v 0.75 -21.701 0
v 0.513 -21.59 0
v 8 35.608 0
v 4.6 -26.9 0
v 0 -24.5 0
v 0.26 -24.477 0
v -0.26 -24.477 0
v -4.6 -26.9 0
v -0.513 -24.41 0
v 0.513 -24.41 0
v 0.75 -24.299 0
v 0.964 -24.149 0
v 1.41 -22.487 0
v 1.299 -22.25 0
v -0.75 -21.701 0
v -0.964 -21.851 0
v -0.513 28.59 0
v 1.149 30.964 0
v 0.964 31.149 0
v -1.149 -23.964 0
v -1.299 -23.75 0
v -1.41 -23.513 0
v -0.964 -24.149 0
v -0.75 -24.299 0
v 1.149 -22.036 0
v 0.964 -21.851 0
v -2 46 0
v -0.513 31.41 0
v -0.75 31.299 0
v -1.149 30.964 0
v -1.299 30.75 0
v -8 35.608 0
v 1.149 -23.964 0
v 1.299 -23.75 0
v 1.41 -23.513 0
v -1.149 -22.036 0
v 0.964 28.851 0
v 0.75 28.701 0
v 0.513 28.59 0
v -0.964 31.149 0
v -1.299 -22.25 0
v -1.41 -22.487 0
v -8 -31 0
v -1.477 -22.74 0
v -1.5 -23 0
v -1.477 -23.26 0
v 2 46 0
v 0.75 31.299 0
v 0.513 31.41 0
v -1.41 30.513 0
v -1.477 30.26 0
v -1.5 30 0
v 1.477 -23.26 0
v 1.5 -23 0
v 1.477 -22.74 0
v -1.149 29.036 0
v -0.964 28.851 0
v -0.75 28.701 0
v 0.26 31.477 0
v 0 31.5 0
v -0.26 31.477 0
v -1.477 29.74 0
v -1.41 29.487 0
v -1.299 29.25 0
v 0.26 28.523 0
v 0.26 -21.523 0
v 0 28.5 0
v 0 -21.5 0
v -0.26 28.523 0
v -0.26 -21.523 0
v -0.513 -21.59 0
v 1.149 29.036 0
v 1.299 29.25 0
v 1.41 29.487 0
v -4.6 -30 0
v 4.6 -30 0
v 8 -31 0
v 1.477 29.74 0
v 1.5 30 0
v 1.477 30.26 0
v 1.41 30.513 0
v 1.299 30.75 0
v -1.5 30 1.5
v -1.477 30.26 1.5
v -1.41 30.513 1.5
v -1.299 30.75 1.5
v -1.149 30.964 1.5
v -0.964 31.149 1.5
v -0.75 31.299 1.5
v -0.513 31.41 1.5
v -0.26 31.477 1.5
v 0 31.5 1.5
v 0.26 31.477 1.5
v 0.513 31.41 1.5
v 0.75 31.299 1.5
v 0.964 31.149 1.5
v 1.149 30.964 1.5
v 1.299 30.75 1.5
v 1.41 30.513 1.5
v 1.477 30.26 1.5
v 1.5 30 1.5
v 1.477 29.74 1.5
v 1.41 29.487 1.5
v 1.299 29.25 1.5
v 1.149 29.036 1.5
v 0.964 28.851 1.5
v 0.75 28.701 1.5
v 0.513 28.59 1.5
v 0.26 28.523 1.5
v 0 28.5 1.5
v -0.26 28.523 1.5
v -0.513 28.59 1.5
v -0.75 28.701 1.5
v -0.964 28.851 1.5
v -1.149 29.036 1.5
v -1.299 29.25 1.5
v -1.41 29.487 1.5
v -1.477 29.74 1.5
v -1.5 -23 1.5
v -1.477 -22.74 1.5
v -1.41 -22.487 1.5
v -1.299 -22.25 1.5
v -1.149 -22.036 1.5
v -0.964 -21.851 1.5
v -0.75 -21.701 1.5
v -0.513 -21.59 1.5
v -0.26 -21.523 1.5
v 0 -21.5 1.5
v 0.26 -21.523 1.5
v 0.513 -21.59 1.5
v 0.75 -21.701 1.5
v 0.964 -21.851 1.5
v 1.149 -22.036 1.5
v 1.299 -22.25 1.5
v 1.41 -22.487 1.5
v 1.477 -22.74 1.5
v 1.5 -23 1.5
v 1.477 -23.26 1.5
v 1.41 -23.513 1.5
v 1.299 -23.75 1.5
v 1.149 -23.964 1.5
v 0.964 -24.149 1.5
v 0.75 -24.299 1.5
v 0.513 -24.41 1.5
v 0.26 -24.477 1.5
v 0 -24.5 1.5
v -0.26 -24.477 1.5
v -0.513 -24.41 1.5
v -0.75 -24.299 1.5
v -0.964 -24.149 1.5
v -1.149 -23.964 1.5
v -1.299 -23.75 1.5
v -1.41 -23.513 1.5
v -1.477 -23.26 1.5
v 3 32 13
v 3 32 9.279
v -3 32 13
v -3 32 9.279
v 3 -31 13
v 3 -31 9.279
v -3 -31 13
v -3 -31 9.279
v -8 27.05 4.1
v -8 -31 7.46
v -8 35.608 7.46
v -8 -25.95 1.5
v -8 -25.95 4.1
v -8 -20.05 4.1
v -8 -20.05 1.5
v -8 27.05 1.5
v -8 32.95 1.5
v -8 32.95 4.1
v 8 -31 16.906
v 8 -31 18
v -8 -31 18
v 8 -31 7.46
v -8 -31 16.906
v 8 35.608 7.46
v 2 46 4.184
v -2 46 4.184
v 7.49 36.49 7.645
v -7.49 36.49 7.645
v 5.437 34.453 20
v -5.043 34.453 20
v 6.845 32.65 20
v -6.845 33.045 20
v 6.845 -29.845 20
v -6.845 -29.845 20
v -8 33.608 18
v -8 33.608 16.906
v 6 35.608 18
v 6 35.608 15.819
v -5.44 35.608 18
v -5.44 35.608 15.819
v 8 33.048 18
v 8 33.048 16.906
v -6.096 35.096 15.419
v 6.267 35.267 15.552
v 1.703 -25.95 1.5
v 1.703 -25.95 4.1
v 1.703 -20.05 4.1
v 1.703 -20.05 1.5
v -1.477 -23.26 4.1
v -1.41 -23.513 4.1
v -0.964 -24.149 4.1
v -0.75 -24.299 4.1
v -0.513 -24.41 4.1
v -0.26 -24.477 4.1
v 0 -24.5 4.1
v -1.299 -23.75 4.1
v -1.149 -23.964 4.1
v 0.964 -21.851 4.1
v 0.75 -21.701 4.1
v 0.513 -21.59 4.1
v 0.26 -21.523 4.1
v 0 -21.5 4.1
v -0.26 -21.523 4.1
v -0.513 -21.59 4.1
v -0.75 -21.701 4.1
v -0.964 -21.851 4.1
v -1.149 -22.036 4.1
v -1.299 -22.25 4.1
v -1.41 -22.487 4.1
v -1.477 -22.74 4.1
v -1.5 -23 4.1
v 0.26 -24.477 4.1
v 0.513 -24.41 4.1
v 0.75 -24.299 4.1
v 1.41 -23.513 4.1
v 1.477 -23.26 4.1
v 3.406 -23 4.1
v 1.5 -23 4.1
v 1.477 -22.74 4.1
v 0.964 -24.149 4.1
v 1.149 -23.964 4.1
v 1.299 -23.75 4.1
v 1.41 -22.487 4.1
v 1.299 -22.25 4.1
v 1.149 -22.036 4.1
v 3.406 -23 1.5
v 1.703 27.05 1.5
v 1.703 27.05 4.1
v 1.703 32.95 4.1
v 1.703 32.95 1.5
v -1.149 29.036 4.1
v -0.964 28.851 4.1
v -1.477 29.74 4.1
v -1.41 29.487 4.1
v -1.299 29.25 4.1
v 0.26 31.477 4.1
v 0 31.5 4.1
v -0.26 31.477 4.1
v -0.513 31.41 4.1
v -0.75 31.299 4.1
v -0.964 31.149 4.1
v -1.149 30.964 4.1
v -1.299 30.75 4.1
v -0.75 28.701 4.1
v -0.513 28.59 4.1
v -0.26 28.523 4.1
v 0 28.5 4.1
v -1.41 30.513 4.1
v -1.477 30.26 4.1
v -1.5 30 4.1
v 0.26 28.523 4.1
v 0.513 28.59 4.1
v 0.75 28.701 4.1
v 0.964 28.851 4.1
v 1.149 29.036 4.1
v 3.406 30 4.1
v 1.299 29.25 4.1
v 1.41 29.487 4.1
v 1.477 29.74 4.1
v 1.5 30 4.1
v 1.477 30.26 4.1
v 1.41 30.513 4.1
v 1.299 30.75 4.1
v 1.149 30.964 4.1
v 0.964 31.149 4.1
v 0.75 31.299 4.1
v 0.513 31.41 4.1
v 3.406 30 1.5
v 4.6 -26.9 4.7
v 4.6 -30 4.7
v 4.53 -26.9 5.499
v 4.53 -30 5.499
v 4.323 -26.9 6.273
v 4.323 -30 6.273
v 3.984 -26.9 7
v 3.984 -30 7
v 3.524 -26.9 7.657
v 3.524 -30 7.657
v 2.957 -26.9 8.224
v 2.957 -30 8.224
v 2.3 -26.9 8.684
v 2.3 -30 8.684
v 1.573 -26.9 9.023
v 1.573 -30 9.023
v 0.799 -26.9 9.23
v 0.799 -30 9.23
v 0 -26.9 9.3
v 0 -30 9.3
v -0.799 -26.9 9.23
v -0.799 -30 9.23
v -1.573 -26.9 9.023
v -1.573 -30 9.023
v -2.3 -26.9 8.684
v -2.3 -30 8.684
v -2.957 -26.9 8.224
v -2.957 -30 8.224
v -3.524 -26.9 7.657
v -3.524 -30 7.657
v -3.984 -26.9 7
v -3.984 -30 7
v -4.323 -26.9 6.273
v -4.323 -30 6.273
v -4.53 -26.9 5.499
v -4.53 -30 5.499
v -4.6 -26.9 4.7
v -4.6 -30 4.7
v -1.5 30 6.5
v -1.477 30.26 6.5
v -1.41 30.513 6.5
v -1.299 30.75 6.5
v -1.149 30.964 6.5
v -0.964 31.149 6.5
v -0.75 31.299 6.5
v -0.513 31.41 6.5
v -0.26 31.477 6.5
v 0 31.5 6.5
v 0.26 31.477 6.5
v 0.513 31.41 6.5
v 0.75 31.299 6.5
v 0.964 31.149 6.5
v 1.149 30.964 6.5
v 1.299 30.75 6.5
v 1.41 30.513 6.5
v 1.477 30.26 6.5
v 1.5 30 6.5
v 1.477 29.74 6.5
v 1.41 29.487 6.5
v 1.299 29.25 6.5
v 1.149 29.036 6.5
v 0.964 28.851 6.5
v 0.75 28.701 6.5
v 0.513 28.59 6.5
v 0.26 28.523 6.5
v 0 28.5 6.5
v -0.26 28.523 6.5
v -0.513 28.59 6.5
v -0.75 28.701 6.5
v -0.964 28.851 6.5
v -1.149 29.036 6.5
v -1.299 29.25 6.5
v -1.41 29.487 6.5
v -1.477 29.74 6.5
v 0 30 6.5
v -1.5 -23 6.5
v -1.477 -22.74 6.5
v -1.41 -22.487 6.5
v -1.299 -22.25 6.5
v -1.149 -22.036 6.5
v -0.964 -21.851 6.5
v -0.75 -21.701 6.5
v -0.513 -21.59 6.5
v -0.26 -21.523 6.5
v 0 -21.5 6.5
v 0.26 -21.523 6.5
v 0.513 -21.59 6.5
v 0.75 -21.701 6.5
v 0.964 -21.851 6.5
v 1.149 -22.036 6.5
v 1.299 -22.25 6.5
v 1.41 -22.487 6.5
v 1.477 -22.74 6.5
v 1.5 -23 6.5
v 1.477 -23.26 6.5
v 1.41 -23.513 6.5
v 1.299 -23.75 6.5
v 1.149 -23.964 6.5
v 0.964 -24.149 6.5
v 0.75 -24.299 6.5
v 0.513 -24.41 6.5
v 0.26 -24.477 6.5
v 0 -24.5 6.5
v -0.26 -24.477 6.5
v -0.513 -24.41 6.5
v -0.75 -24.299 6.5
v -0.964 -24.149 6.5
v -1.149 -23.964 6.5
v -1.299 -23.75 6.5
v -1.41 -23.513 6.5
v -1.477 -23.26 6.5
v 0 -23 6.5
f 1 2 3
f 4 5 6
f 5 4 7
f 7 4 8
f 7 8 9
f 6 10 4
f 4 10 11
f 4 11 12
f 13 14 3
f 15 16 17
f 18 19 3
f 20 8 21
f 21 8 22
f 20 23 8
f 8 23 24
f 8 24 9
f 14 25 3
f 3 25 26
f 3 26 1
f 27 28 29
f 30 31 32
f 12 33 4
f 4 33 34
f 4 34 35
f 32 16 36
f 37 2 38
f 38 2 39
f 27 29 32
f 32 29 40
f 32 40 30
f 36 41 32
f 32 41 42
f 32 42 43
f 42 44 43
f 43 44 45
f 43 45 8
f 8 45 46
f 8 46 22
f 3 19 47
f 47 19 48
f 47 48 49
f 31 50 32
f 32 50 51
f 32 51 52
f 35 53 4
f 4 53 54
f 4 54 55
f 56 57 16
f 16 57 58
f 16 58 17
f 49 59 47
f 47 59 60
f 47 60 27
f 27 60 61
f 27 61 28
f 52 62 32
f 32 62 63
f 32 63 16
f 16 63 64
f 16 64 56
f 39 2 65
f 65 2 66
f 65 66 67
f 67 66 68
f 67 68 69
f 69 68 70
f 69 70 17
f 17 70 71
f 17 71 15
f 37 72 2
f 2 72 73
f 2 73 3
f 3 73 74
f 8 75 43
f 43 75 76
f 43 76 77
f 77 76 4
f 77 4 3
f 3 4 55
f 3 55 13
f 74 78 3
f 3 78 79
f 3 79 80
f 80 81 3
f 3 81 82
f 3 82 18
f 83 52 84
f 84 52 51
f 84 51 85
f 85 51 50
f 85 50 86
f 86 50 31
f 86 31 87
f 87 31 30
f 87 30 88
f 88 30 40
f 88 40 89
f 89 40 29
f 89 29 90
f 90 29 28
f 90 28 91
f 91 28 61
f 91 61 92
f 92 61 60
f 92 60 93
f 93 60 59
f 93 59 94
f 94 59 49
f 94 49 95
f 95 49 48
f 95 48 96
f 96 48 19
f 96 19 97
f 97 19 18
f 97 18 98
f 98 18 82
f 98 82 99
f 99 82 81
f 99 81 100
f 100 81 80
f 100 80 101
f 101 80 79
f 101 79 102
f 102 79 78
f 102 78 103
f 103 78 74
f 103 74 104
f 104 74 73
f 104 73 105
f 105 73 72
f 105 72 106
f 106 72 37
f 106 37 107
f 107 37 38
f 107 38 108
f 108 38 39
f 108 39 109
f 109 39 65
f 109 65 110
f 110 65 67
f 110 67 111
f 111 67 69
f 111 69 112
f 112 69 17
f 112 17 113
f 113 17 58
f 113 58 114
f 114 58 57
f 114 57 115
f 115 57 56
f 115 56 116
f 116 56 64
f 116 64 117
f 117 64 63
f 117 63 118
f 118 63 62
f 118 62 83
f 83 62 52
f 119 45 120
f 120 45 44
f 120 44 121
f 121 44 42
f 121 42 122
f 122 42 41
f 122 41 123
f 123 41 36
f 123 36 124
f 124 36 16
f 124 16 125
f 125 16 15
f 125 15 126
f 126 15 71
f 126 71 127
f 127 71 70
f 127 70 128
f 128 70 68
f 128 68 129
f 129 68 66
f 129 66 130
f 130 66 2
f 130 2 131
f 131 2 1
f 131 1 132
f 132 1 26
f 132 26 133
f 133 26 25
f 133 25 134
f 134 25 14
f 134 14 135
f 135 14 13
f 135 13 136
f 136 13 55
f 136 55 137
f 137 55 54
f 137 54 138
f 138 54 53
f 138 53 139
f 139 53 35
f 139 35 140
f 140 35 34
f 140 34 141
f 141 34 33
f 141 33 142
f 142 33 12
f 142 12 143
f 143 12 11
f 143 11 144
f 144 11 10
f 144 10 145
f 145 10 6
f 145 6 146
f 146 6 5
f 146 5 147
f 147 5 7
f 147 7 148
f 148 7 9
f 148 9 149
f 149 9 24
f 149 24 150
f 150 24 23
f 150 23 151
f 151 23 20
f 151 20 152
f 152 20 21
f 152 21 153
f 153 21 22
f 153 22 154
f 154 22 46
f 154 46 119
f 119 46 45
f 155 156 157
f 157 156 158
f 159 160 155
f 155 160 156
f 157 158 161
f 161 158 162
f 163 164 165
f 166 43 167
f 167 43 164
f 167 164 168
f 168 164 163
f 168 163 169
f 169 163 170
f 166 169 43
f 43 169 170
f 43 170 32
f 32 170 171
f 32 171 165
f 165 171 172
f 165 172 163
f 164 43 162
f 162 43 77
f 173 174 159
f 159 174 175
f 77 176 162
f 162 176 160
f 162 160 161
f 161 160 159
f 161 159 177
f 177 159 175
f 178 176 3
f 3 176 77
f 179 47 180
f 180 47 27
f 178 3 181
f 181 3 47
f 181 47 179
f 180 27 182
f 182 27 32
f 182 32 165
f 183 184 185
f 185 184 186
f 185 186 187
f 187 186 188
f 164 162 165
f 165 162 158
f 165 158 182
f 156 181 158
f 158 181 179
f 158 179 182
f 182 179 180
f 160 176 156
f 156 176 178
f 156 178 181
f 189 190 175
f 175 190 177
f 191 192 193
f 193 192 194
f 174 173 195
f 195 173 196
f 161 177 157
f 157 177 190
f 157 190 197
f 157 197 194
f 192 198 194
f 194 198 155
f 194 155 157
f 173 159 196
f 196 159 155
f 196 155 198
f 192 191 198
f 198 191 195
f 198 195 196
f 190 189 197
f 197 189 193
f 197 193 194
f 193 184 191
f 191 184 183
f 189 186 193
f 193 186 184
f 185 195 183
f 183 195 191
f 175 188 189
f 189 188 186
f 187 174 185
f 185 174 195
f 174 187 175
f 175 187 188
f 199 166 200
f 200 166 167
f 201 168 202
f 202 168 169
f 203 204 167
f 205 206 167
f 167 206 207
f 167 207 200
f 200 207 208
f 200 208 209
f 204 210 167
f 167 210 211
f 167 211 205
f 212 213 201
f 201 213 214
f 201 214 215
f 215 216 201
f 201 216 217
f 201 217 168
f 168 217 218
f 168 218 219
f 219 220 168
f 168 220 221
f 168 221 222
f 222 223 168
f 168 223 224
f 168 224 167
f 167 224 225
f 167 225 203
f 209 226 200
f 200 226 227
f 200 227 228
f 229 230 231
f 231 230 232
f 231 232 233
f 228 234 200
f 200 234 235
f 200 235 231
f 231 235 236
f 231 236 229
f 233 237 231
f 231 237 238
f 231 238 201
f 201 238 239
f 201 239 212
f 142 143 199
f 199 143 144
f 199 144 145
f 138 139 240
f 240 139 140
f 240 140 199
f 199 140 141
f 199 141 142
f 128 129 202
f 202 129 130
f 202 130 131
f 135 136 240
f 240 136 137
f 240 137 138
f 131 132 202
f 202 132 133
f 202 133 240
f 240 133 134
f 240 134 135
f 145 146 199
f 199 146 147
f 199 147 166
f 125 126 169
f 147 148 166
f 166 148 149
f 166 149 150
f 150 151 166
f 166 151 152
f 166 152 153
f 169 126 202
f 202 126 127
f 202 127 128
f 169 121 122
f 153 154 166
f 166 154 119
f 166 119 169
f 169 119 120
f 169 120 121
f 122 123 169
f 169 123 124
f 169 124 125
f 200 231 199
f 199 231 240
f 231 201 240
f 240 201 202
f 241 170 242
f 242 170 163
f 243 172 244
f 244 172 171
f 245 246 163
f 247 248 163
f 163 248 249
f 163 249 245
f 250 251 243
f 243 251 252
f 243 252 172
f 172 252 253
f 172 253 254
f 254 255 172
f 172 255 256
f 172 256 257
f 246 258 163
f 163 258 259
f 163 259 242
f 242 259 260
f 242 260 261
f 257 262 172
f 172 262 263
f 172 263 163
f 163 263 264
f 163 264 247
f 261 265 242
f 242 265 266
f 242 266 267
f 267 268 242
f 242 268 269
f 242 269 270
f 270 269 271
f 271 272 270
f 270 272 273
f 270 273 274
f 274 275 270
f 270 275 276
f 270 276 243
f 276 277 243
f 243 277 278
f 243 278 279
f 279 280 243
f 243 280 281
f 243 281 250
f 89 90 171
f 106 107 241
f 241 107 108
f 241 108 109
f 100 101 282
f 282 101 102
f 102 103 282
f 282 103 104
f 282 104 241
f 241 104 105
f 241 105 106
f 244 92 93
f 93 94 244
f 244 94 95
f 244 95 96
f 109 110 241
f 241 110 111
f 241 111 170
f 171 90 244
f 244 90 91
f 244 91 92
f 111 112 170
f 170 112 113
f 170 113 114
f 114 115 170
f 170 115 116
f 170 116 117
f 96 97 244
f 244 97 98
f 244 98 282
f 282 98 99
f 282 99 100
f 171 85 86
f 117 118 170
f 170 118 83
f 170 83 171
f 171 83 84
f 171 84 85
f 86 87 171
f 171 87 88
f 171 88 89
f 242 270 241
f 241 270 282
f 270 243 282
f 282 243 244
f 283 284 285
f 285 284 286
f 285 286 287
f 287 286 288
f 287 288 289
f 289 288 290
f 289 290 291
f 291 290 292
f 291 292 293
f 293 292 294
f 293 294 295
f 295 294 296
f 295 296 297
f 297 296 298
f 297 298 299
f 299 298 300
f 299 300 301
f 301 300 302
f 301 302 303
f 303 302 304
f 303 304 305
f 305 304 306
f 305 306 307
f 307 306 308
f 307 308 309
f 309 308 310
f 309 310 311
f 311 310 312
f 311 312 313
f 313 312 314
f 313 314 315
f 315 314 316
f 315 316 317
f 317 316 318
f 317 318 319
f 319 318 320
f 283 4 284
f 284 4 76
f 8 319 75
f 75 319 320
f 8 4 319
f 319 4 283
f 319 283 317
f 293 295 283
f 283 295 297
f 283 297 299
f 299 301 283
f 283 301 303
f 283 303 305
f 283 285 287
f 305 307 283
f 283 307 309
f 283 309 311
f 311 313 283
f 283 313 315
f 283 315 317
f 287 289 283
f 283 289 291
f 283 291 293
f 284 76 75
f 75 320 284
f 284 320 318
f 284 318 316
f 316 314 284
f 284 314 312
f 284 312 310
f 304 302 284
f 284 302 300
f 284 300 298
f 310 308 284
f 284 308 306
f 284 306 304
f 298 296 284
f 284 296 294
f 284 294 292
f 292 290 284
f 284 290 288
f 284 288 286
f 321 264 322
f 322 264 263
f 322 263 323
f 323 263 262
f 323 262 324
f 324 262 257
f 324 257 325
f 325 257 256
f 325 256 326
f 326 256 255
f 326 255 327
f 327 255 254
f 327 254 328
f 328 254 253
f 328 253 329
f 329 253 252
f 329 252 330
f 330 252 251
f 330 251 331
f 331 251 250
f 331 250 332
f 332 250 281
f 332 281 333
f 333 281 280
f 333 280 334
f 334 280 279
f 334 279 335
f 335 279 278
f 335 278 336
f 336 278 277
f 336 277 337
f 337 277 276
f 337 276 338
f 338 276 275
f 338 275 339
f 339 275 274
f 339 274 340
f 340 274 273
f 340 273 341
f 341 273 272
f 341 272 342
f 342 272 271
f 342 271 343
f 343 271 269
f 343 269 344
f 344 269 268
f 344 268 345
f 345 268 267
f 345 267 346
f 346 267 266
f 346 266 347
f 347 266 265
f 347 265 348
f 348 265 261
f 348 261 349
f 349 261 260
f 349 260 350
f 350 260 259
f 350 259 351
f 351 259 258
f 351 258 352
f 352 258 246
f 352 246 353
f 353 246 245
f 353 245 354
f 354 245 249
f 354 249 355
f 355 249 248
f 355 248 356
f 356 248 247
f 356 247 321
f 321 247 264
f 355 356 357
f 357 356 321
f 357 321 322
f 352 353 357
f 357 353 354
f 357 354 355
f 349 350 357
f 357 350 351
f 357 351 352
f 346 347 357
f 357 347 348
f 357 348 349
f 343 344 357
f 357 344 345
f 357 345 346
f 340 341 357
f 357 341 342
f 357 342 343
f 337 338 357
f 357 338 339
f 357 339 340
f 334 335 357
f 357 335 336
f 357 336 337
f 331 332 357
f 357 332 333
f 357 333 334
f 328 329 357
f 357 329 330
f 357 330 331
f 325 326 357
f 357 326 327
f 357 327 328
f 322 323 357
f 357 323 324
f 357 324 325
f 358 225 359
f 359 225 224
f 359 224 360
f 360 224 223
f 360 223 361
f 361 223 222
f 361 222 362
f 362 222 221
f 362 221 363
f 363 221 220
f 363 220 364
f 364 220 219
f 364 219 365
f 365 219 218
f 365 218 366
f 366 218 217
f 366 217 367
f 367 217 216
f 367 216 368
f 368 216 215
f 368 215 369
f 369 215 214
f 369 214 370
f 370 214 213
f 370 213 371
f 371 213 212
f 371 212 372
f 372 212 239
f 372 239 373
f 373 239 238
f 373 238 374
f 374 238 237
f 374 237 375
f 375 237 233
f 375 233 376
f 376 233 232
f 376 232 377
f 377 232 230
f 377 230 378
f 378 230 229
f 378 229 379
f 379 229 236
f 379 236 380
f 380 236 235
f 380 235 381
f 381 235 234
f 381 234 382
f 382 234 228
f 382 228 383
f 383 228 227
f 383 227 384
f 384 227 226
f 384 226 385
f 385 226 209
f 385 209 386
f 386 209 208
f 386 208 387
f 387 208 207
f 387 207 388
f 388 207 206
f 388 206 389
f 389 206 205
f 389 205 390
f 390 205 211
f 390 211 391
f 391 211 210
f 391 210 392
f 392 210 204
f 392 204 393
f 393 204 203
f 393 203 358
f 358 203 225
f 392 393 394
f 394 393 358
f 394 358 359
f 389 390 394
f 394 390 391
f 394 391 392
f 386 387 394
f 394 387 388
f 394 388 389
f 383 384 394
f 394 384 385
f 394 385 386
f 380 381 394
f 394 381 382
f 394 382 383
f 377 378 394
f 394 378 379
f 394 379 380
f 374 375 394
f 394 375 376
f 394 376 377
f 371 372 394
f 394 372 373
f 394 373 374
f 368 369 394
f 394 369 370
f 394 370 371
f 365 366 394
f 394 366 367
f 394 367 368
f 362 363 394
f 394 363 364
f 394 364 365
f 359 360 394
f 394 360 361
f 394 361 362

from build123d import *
from OCP.BRepFilletAPI import BRepFilletAPI_MakeChamfer

# Parameters (mm, degrees)
SKETCH1_W           = 16
SKETCH1_H           = 77
SKETCH1_R           = 1.5
BOSS_EXTRUDE1_DEPTH = 2
CHAMFER1_SIZE       = 6
CHAMFER1_SIZE2      = 10.392304845
SKETCH2_W           = 6
SKETCH2_H           = 63
BOSS_EXTRUDE2_DEPTH = 18
CHAMFER2_SIZE       = 20
CHAMFER2_SIZE_2     = 7.279404685
SKETCH3_W           = 16
SKETCH3_H           = 66.607695155
BOSS_EXTRUDE3_DEPTH = 3
CHAMFER3_SIZE       = 5.119766529
CHAMFER3_SIZE_2     = 4
CHAMFER4_SIZE       = 2
CHAMFER4_SIZE2      = 2.559883264
CHAMFER6_SIZE       = 2
CHAMFER6_SIZE2      = 1.154700538
CUT_EXTRUDE1_DEPTH  = 2.6
CUT_EXTRUDE3_DEPTH  = 3.1
SKETCH9_R           = 1.5
CUT_EXTRUDE_3_DEPTH = 6.5


with BuildPart() as part:
    # Sketch1 → Boss-Extrude1 (new body)
    with BuildSketch(Plane.XY):
        with Locations((0, 7.5)):
            Rectangle(SKETCH1_W, SKETCH1_H)
        with Locations((0, 30)):
            Circle(SKETCH1_R, mode=Mode.SUBTRACT)
        with Locations((0, -23)):
            Circle(SKETCH1_R, mode=Mode.SUBTRACT)
    extrude(amount=BOSS_EXTRUDE1_DEPTH)

    # Chamfer1
    chamfer1_edges = [part.edges().sort_by_distance(p)[0] for p in [
        (-8, 46, 1),
        (8, 46, 1),
    ]]
    chamfer1_side = [part.faces().sort_by_distance(p)[0] for p in [
        (0, 46, 1),
    ]]
    chamfer(chamfer1_edges, length=CHAMFER1_SIZE, length2=CHAMFER1_SIZE2, reference=chamfer1_side[0])

    # Sketch2 → Boss-Extrude2 (add)
    with BuildSketch(Plane.XY.offset(2)):
        with Locations((0, 0.5)):
            Rectangle(SKETCH2_W, SKETCH2_H)
    extrude(amount=BOSS_EXTRUDE2_DEPTH)

    # Chamfer2
    # the kernel refuses this chamfer: 20, 7.279404685 mm, written as the material it adds along each edge
    with BuildSketch(Plane(origin=(3, 32, 2), x_dir=(0.9999130865277317, 0, -0.013184058198645935), z_dir=(0, -1, 0))) as chamfer2_piece_1_section:
        Polygon((CHAMFER2_SIZE * 0.999913086528, CHAMFER2_SIZE * 0.0131840581986), (-CHAMFER2_SIZE_2 * 0.0131840581992, CHAMFER2_SIZE_2 * 0.999913086572), (0, 0), align=None)
    chamfer2_piece_1 = extrude(amount=63, mode=Mode.PRIVATE)
    chamfer2_piece_1 = split(chamfer2_piece_1, bisect_by=Plane(origin=(8, 0.5, 5.171623494), z_dir=(-1, 0, 0)), keep=Keep.TOP, mode=Mode.PRIVATE)
    add(chamfer2_piece_1)
    with BuildSketch(Plane(origin=(-3, -31, 2), x_dir=(-0.9999130865277317, 0, -0.013184058198645935), z_dir=(0, 1, 0))) as chamfer2_piece_2_section:
        Polygon((CHAMFER2_SIZE * 0.999913086528, CHAMFER2_SIZE * 0.0131840581986), (-CHAMFER2_SIZE_2 * 0.0131840581992, CHAMFER2_SIZE_2 * 0.999913086572), (0, 0), align=None)
    chamfer2_piece_2 = extrude(amount=63, mode=Mode.PRIVATE)
    chamfer2_piece_2 = split(chamfer2_piece_2, bisect_by=Plane(origin=(-8, 0.5, 5.171623494), z_dir=(1, 0, 0)), keep=Keep.TOP, mode=Mode.PRIVATE)
    add(chamfer2_piece_2)
    with BuildSketch(Plane(origin=(-3, 32, 2), x_dir=(0, 0.9999130865277315, -0.01318405819864593), z_dir=(1, 0, 0))) as chamfer2_piece_3_section:
        Polygon((CHAMFER2_SIZE * 0.999913086528, CHAMFER2_SIZE * 0.0131840581986), (-CHAMFER2_SIZE_2 * 0.0131840581992, CHAMFER2_SIZE_2 * 0.999913086572), (0, 0), align=None)
    chamfer2_piece_3 = extrude(amount=6, mode=Mode.PRIVATE)
    chamfer2_piece_3 = split(chamfer2_piece_3, bisect_by=Plane(origin=(0, 46, 4.508624661), z_dir=(0, -1, 0)), keep=Keep.TOP, mode=Mode.PRIVATE)
    chamfer2_piece_3 = split(chamfer2_piece_3, bisect_by=Plane(origin=(-5.203873062, 40.450729076, 4.508624661), z_dir=(0.8660254037844399, -0.49999999999999795, 0)), keep=Keep.TOP, mode=Mode.PRIVATE)
    chamfer2_piece_3 = split(chamfer2_piece_3, bisect_by=Plane(origin=(5.203873062, 40.450729076, 4.508624661), z_dir=(-0.8660254037844398, -0.499999999999998, 0)), keep=Keep.TOP, mode=Mode.PRIVATE)
    add(chamfer2_piece_3)
    with BuildSketch(Plane(origin=(-3, 32, 2), x_dir=(0, 0.9999130865277315, -0.01318405819864593), z_dir=(1, 0, 0))) as chamfer2_piece_4a_section:
        Polygon((CHAMFER2_SIZE * 0.999913086528, CHAMFER2_SIZE * 0.0131840581986), (-CHAMFER2_SIZE_2 * 0.0131840581992, CHAMFER2_SIZE_2 * 0.999913086572), (0, 0), align=None)
    chamfer2_piece_4a = extrude(amount=57.883894651, mode=Mode.PRIVATE)
    chamfer2_piece_4a = split(chamfer2_piece_4a, bisect_by=Plane(origin=(7.316315987, 36.791870601, 4.879553829), z_dir=(-0.8660254037844398, -0.499999999999998, 0)), keep=Keep.TOP, mode=Mode.PRIVATE)
    chamfer2_piece_4a = split(chamfer2_piece_4a, bisect_by=Plane(origin=(8, 35.552510025, 4.879553829), z_dir=(-1, 0, 0)), keep=Keep.TOP, mode=Mode.PRIVATE)
    chamfer2_piece_4a = split(chamfer2_piece_4a, bisect_by=Plane(origin=(3, 35.552510025, 4.879553829), z_dir=(1, 0, 0)), keep=Keep.TOP, mode=Mode.PRIVATE)
    with BuildSketch(Plane(origin=(3, 83.883894651, 2), x_dir=(0.9999130865277317, 0, -0.013184058198645935), z_dir=(0, -1, 0))) as chamfer2_piece_4b_section:
        Polygon((CHAMFER2_SIZE * 0.999913086528, CHAMFER2_SIZE * 0.0131840581986), (-CHAMFER2_SIZE_2 * 0.0131840581992, CHAMFER2_SIZE_2 * 0.999913086572), (0, 0), align=None)
    chamfer2_piece_4b = extrude(amount=114.883894651, mode=Mode.PRIVATE)
    chamfer2_piece_4b = split(chamfer2_piece_4b, bisect_by=Plane(origin=(6.651088561, 37.944078302, 5.319791994), z_dir=(-0.8660254037844398, -0.499999999999998, 0)), keep=Keep.TOP, mode=Mode.PRIVATE)
    chamfer2_piece_4b = split(chamfer2_piece_4b, bisect_by=Plane(origin=(8, 36.755262641, 5.319791994), z_dir=(-1, 0, 0)), keep=Keep.TOP, mode=Mode.PRIVATE)
    chamfer2_piece_4b = split(chamfer2_piece_4b, bisect_by=Plane(origin=(4.591999436, 32, 5.319791994), z_dir=(0, 1, 0)), keep=Keep.TOP, mode=Mode.PRIVATE)
    chamfer2_piece_4 = chamfer2_piece_4a & chamfer2_piece_4b
    add(chamfer2_piece_4)
    with BuildSketch(Plane(origin=(-3, -31, 2), x_dir=(-0.9999130865277317, 0, -0.013184058198645935), z_dir=(0, 1, 0))) as chamfer2_piece_5a_section:
        Polygon((CHAMFER2_SIZE * 0.999913086528, CHAMFER2_SIZE * 0.0131840581986), (-CHAMFER2_SIZE_2 * 0.0131840581992, CHAMFER2_SIZE_2 * 0.999913086572), (0, 0), align=None)
    chamfer2_piece_5a = extrude(amount=114.883894651, mode=Mode.PRIVATE)
    chamfer2_piece_5a = split(chamfer2_piece_5a, bisect_by=Plane(origin=(-6.651088561, 37.944078302, 5.319791994), z_dir=(0.8660254037844399, -0.49999999999999795, 0)), keep=Keep.TOP, mode=Mode.PRIVATE)
    chamfer2_piece_5a = split(chamfer2_piece_5a, bisect_by=Plane(origin=(-8, 36.755262641, 5.319791994), z_dir=(1, 0, 0)), keep=Keep.TOP, mode=Mode.PRIVATE)
    chamfer2_piece_5a = split(chamfer2_piece_5a, bisect_by=Plane(origin=(-4.591999436, 32, 5.319791994), z_dir=(0, 1, 0)), keep=Keep.TOP, mode=Mode.PRIVATE)
    with BuildSketch(Plane(origin=(-54.883894651, 32, 2), x_dir=(0, 0.9999130865277315, -0.01318405819864593), z_dir=(1, 0, 0))) as chamfer2_piece_5b_section:
        Polygon((CHAMFER2_SIZE * 0.999913086528, CHAMFER2_SIZE * 0.0131840581986), (-CHAMFER2_SIZE_2 * 0.0131840581992, CHAMFER2_SIZE_2 * 0.999913086572), (0, 0), align=None)
    chamfer2_piece_5b = extrude(amount=57.883894651, mode=Mode.PRIVATE)
    chamfer2_piece_5b = split(chamfer2_piece_5b, bisect_by=Plane(origin=(-7.316315987, 36.791870601, 4.879553829), z_dir=(0.8660254037844399, -0.49999999999999795, 0)), keep=Keep.TOP, mode=Mode.PRIVATE)
    chamfer2_piece_5b = split(chamfer2_piece_5b, bisect_by=Plane(origin=(-8, 35.552510025, 4.879553829), z_dir=(1, 0, 0)), keep=Keep.TOP, mode=Mode.PRIVATE)
    chamfer2_piece_5b = split(chamfer2_piece_5b, bisect_by=Plane(origin=(-3, 35.552510025, 4.879553829), z_dir=(-1, 0, 0)), keep=Keep.TOP, mode=Mode.PRIVATE)
    chamfer2_piece_5 = chamfer2_piece_5a & chamfer2_piece_5b
    add(chamfer2_piece_5)

    # Sketch3 → Boss-Extrude3 (add)
    with BuildSketch(Plane.XY.offset(20)):
        with Locations((0, 2.303847577)):
            Rectangle(SKETCH3_W, SKETCH3_H)
    extrude(amount=-BOSS_EXTRUDE3_DEPTH)

    # Chamfer3
    # the kernel refuses this chamfer: 5.119766529, 4 mm, written as the material it adds along each edge
    with BuildSketch(Plane(origin=(-3, 32, 17), x_dir=(-0.9997151392093142, 0, 0.023867141339117107), z_dir=(0, -1, 0))) as chamfer3_piece_1_section:
        Polygon((CHAMFER3_SIZE * 0.999715139165, CHAMFER3_SIZE * 0.0238671413381), (-CHAMFER3_SIZE_2 * 0.0238671413391, CHAMFER3_SIZE_2 * 0.999715139209), (0, 0), align=None)
    chamfer3_piece_1 = extrude(amount=63, mode=Mode.PRIVATE)
    chamfer3_piece_1 = split(chamfer3_piece_1, bisect_by=Plane(origin=(-8, 0.5, 15.68735559), z_dir=(1, 0, 0)), keep=Keep.TOP, mode=Mode.PRIVATE)
    add(chamfer3_piece_1)
    with BuildSketch(Plane(origin=(3, -31, 17), x_dir=(-0.03908161918057666, 0, -0.9992360216896831), z_dir=(0, 1, 0))) as chamfer3_piece_2_section:
        Polygon((CHAMFER3_SIZE_2 * 0.99923602169, -CHAMFER3_SIZE_2 * 0.0390816191806), (-CHAMFER3_SIZE * 0.0390816191788, -CHAMFER3_SIZE * 0.999236021645), (0, 0), align=None)
    chamfer3_piece_2 = extrude(amount=63, mode=Mode.PRIVATE)
    chamfer3_piece_2 = split(chamfer3_piece_2, bisect_by=Plane(origin=(8, 0.5, 15.68735559), z_dir=(-1, 0, 0)), keep=Keep.TOP, mode=Mode.PRIVATE)
    add(chamfer3_piece_2)
    with BuildSketch(Plane(origin=(3, 32, 17), x_dir=(0, -0.03908161918057696, -0.9992360216896828), z_dir=(-1, 0, 0))) as chamfer3_piece_3_section:
        Polygon((CHAMFER3_SIZE_2 * 0.99923602169, -CHAMFER3_SIZE_2 * 0.0390816191806), (-CHAMFER3_SIZE * 0.0390816191788, -CHAMFER3_SIZE * 0.999236021645), (0, 0), align=None)
    chamfer3_piece_3 = extrude(amount=6, mode=Mode.PRIVATE)
    chamfer3_piece_3 = split(chamfer3_piece_3, bisect_by=Plane(origin=(0, 35.607695155, 15.575763401), z_dir=(0, -1, 0)), keep=Keep.TOP, mode=Mode.PRIVATE)
    add(chamfer3_piece_3)
    with BuildSketch(Plane(origin=(3, 32, 17), x_dir=(0, -0.03908161918057696, -0.9992360216896828), z_dir=(-1, 0, 0))) as chamfer3_piece_4a_section:
        Polygon((CHAMFER3_SIZE_2 * 0.99923602169, -CHAMFER3_SIZE_2 * 0.0390816191806), (-CHAMFER3_SIZE * 0.0390816191788, -CHAMFER3_SIZE * 0.999236021645), (0, 0), align=None)
    chamfer3_piece_4a = extrude(amount=19.206621479, mode=Mode.PRIVATE)
    chamfer3_piece_4a = split(chamfer3_piece_4a, bisect_by=Plane(origin=(-3, 33.411290687, 15.575763401), z_dir=(-1, 0, 0)), keep=Keep.TOP, mode=Mode.PRIVATE)
    chamfer3_piece_4a = split(chamfer3_piece_4a, bisect_by=Plane(origin=(-8, 33.411290687, 15.575763401), z_dir=(1, 0, 0)), keep=Keep.TOP, mode=Mode.PRIVATE)
    chamfer3_piece_4a = split(chamfer3_piece_4a, bisect_by=Plane(origin=(-5.5, 35.607695155, 15.575763401), z_dir=(0, -1, 0)), keep=Keep.TOP, mode=Mode.PRIVATE)
    with BuildSketch(Plane(origin=(-3, 45.206621479, 17), x_dir=(-0.9997151392093142, 0, 0.023867141339117107), z_dir=(0, -1, 0))) as chamfer3_piece_4b_section:
        Polygon((CHAMFER3_SIZE * 0.999715139165, CHAMFER3_SIZE * 0.0238671413381), (-CHAMFER3_SIZE_2 * 0.0238671413391, CHAMFER3_SIZE_2 * 0.999715139209), (0, 0), align=None)
    chamfer3_piece_4b = extrude(amount=76.206621479, mode=Mode.PRIVATE)
    chamfer3_piece_4b = split(chamfer3_piece_4b, bisect_by=Plane(origin=(-4.682811334, 32, 15.68735559), z_dir=(0, 1, 0)), keep=Keep.TOP, mode=Mode.PRIVATE)
    chamfer3_piece_4b = split(chamfer3_piece_4b, bisect_by=Plane(origin=(-8, 33.803847577, 15.68735559), z_dir=(1, 0, 0)), keep=Keep.TOP, mode=Mode.PRIVATE)
    chamfer3_piece_4b = split(chamfer3_piece_4b, bisect_by=Plane(origin=(-4.682811334, 35.607695155, 15.68735559), z_dir=(0, -1, 0)), keep=Keep.TOP, mode=Mode.PRIVATE)
    chamfer3_piece_4 = chamfer3_piece_4a & chamfer3_piece_4b
    add(chamfer3_piece_4)
    with BuildSketch(Plane(origin=(3, -31, 17), x_dir=(-0.03908161918057666, 0, -0.9992360216896831), z_dir=(0, 1, 0))) as chamfer3_piece_5a_section:
        Polygon((CHAMFER3_SIZE_2 * 0.99923602169, -CHAMFER3_SIZE_2 * 0.0390816191806), (-CHAMFER3_SIZE * 0.0390816191788, -CHAMFER3_SIZE * 0.999236021645), (0, 0), align=None)
    chamfer3_piece_5a = extrude(amount=76.206621479, mode=Mode.PRIVATE)
    chamfer3_piece_5a = split(chamfer3_piece_5a, bisect_by=Plane(origin=(4.682811334, 32, 15.68735559), z_dir=(0, 1, 0)), keep=Keep.TOP, mode=Mode.PRIVATE)
    chamfer3_piece_5a = split(chamfer3_piece_5a, bisect_by=Plane(origin=(8, 33.803847577, 15.68735559), z_dir=(-1, 0, 0)), keep=Keep.TOP, mode=Mode.PRIVATE)
    chamfer3_piece_5a = split(chamfer3_piece_5a, bisect_by=Plane(origin=(4.682811334, 35.607695155, 15.68735559), z_dir=(0, -1, 0)), keep=Keep.TOP, mode=Mode.PRIVATE)
    with BuildSketch(Plane(origin=(16.206621479, 32, 17), x_dir=(0, -0.039081619180576975, -0.9992360216896828), z_dir=(-1, 0, 0))) as chamfer3_piece_5b_section:
        Polygon((CHAMFER3_SIZE_2 * 0.99923602169, -CHAMFER3_SIZE_2 * 0.0390816191806), (-CHAMFER3_SIZE * 0.0390816191788, -CHAMFER3_SIZE * 0.999236021645), (0, 0), align=None)
    chamfer3_piece_5b = extrude(amount=19.206621479, mode=Mode.PRIVATE)
    chamfer3_piece_5b = split(chamfer3_piece_5b, bisect_by=Plane(origin=(3, 33.411290687, 15.575763401), z_dir=(1, 0, 0)), keep=Keep.TOP, mode=Mode.PRIVATE)
    chamfer3_piece_5b = split(chamfer3_piece_5b, bisect_by=Plane(origin=(8, 33.411290687, 15.575763401), z_dir=(-1, 0, 0)), keep=Keep.TOP, mode=Mode.PRIVATE)
    chamfer3_piece_5b = split(chamfer3_piece_5b, bisect_by=Plane(origin=(5.5, 35.607695155, 15.575763401), z_dir=(0, -1, 0)), keep=Keep.TOP, mode=Mode.PRIVATE)
    chamfer3_piece_5 = chamfer3_piece_5a & chamfer3_piece_5b
    add(chamfer3_piece_5)

    # Chamfer4: one chamfer whose edges measure the first distance from different faces: ONE call of the kernel's chamfer builder (chamfer() names one face for all edges)
    chamfer4_edges_1 = [part.edges().sort_by_distance(p)[0] for p in [
        (8, 35.607695155, 18.453214066),
    ]]
    chamfer4_side_1 = [part.faces().sort_by_distance(p)[0] for p in [
        (0, 35.607695155, 17.949346945),
    ]]
    chamfer4_edges_2 = [part.edges().sort_by_distance(p)[0] for p in [
        (-8, 35.607695155, 18.453214066),
    ]]
    chamfer4_side_2 = [part.faces().sort_by_distance(p)[0] for p in [
        (-8, 2.303847577, 18.453214066),
    ]]
    chamfer4 = BRepFilletAPI_MakeChamfer(part.part.solid().wrapped)
    for e in chamfer4_edges_1:
        chamfer4.Add(CHAMFER4_SIZE, CHAMFER4_SIZE2, e.wrapped, chamfer4_side_1[0].wrapped)  # the first distance lies on this face
    for e in chamfer4_edges_2:
        chamfer4.Add(CHAMFER4_SIZE, CHAMFER4_SIZE2, e.wrapped, chamfer4_side_2[0].wrapped)  # the first distance lies on this face
    add(Compound.cast(chamfer4.Shape()), mode=Mode.REPLACE)

    # Chamfer6: one chamfer whose edges measure the first distance from different faces: ONE call of the kernel's chamfer builder (chamfer() names one face for all edges)
    chamfer6_edges_1 = [part.edges().sort_by_distance(p)[0] for p in [
        (0.279941632, 35.607695155, 20),
    ]]
    chamfer6_side_1 = [part.faces().sort_by_distance(p)[0] for p in [
        (0.279941632, 35.607695155, 17.909320185),
    ]]
    chamfer6_edges_2 = [part.edges().sort_by_distance(p)[0] for p in [
        (-8, 1.303847577, 20),
    ]]
    chamfer6_side_2 = [part.faces().sort_by_distance(p)[0] for p in [
        (-8, 1.303847577, 18.453214066),
    ]]
    chamfer6_edges_3 = [part.edges().sort_by_distance(p)[0] for p in [
        (-6.720058368, 34.607695155, 20),
    ]]
    chamfer6_side_3 = [part.faces().sort_by_distance(p)[0] for p in [
        (-6.643946015, 34.667160642, 17.986837594),
    ]]
    chamfer6_edges_4 = [part.edges().sort_by_distance(p)[0] for p in [
        (7, 34.327753522, 20),
    ]]
    chamfer6_side_4 = [part.faces().sort_by_distance(p)[0] for p in [
        (6.939737458, 34.404886058, 18.056606172),
    ]]
    chamfer6_edges_5 = [part.edges().sort_by_distance(p)[0] for p in [
        (0, -31, 20),
    ]]
    chamfer6_side_5 = [part.faces().sort_by_distance(p)[0] for p in [
        (0, -31, 9.550063224),
    ]]
    chamfer6_edges_6 = [part.edges().sort_by_distance(p)[0] for p in [
        (8, 1.023905945, 20),
    ]]
    chamfer6_side_6 = [part.faces().sort_by_distance(p)[0] for p in [
        (8, 1.023905945, 18.453214066),
    ]]
    chamfer6 = BRepFilletAPI_MakeChamfer(part.part.solid().wrapped)
    for e in chamfer6_edges_1:
        chamfer6.Add(CHAMFER6_SIZE, CHAMFER6_SIZE2, e.wrapped, chamfer6_side_1[0].wrapped)  # the first distance lies on this face
    for e in chamfer6_edges_2:
        chamfer6.Add(CHAMFER6_SIZE, CHAMFER6_SIZE2, e.wrapped, chamfer6_side_2[0].wrapped)  # the first distance lies on this face
    for e in chamfer6_edges_3:
        chamfer6.Add(CHAMFER6_SIZE, CHAMFER6_SIZE2, e.wrapped, chamfer6_side_3[0].wrapped)  # the first distance lies on this face
    for e in chamfer6_edges_4:
        chamfer6.Add(CHAMFER6_SIZE, CHAMFER6_SIZE2, e.wrapped, chamfer6_side_4[0].wrapped)  # the first distance lies on this face
    for e in chamfer6_edges_5:
        chamfer6.Add(CHAMFER6_SIZE, CHAMFER6_SIZE2, e.wrapped, chamfer6_side_5[0].wrapped)  # the first distance lies on this face
    for e in chamfer6_edges_6:
        chamfer6.Add(CHAMFER6_SIZE, CHAMFER6_SIZE2, e.wrapped, chamfer6_side_6[0].wrapped)  # the first distance lies on this face
    add(Compound.cast(chamfer6.Shape()), mode=Mode.REPLACE)

    # Sketch4 → Cut-Extrude1 (cut)
    with BuildSketch(Plane(origin=(0, 0, 1.5), x_dir=(-1, 0, 0), z_dir=(0, 0, -1))):
        Polygon((1.703183294, 32.95), (-1.703183294, 32.95), (-3.406366588, 30), (-1.703183294, 27.05), (1.703183294, 27.05), (10.550735488, 27.05), (10.550735488, 32.95), align=None)
        Polygon((1.703183294, -20.05), (-1.703183294, -20.05), (-3.406366588, -23), (-1.703183294, -25.95), (1.703183294, -25.95), (10.550735488, -25.95), (10.550735488, -20.05), align=None)
    extrude(amount=-CUT_EXTRUDE1_DEPTH, mode=Mode.SUBTRACT)

    # Sketch8 → Cut-Extrude3 (cut)
    with BuildSketch(Plane(origin=(0, -30, 0), x_dir=(-1, 0, 0), z_dir=(0, -1, 0))):
        with BuildLine():
            Line((-4.6, -4.7), (-4.6, 0))
            Line((-4.6, 0), (4.6, 0))
            Line((4.6, 0), (4.6, -4.7))
            ThreePointArc((4.6, -4.7), (0, -9.3), (-4.6, -4.7))
        make_face()
    extrude(amount=-CUT_EXTRUDE3_DEPTH, mode=Mode.SUBTRACT)

    # Sketch9 → Cut-Extrude 3 (cut)
    with BuildSketch(Plane(origin=(0, 0, 0), x_dir=(-1, 0, 0), z_dir=(0, 0, -1))):
        with Locations(Location((0, 30, 0), (0, 0, 180))):
            Circle(SKETCH9_R)
        with Locations(Location((0, -23, 0), (0, 0, 180))):
            Circle(SKETCH9_R)
    extrude(amount=-CUT_EXTRUDE_3_DEPTH, mode=Mode.SUBTRACT)


solid = part.part
